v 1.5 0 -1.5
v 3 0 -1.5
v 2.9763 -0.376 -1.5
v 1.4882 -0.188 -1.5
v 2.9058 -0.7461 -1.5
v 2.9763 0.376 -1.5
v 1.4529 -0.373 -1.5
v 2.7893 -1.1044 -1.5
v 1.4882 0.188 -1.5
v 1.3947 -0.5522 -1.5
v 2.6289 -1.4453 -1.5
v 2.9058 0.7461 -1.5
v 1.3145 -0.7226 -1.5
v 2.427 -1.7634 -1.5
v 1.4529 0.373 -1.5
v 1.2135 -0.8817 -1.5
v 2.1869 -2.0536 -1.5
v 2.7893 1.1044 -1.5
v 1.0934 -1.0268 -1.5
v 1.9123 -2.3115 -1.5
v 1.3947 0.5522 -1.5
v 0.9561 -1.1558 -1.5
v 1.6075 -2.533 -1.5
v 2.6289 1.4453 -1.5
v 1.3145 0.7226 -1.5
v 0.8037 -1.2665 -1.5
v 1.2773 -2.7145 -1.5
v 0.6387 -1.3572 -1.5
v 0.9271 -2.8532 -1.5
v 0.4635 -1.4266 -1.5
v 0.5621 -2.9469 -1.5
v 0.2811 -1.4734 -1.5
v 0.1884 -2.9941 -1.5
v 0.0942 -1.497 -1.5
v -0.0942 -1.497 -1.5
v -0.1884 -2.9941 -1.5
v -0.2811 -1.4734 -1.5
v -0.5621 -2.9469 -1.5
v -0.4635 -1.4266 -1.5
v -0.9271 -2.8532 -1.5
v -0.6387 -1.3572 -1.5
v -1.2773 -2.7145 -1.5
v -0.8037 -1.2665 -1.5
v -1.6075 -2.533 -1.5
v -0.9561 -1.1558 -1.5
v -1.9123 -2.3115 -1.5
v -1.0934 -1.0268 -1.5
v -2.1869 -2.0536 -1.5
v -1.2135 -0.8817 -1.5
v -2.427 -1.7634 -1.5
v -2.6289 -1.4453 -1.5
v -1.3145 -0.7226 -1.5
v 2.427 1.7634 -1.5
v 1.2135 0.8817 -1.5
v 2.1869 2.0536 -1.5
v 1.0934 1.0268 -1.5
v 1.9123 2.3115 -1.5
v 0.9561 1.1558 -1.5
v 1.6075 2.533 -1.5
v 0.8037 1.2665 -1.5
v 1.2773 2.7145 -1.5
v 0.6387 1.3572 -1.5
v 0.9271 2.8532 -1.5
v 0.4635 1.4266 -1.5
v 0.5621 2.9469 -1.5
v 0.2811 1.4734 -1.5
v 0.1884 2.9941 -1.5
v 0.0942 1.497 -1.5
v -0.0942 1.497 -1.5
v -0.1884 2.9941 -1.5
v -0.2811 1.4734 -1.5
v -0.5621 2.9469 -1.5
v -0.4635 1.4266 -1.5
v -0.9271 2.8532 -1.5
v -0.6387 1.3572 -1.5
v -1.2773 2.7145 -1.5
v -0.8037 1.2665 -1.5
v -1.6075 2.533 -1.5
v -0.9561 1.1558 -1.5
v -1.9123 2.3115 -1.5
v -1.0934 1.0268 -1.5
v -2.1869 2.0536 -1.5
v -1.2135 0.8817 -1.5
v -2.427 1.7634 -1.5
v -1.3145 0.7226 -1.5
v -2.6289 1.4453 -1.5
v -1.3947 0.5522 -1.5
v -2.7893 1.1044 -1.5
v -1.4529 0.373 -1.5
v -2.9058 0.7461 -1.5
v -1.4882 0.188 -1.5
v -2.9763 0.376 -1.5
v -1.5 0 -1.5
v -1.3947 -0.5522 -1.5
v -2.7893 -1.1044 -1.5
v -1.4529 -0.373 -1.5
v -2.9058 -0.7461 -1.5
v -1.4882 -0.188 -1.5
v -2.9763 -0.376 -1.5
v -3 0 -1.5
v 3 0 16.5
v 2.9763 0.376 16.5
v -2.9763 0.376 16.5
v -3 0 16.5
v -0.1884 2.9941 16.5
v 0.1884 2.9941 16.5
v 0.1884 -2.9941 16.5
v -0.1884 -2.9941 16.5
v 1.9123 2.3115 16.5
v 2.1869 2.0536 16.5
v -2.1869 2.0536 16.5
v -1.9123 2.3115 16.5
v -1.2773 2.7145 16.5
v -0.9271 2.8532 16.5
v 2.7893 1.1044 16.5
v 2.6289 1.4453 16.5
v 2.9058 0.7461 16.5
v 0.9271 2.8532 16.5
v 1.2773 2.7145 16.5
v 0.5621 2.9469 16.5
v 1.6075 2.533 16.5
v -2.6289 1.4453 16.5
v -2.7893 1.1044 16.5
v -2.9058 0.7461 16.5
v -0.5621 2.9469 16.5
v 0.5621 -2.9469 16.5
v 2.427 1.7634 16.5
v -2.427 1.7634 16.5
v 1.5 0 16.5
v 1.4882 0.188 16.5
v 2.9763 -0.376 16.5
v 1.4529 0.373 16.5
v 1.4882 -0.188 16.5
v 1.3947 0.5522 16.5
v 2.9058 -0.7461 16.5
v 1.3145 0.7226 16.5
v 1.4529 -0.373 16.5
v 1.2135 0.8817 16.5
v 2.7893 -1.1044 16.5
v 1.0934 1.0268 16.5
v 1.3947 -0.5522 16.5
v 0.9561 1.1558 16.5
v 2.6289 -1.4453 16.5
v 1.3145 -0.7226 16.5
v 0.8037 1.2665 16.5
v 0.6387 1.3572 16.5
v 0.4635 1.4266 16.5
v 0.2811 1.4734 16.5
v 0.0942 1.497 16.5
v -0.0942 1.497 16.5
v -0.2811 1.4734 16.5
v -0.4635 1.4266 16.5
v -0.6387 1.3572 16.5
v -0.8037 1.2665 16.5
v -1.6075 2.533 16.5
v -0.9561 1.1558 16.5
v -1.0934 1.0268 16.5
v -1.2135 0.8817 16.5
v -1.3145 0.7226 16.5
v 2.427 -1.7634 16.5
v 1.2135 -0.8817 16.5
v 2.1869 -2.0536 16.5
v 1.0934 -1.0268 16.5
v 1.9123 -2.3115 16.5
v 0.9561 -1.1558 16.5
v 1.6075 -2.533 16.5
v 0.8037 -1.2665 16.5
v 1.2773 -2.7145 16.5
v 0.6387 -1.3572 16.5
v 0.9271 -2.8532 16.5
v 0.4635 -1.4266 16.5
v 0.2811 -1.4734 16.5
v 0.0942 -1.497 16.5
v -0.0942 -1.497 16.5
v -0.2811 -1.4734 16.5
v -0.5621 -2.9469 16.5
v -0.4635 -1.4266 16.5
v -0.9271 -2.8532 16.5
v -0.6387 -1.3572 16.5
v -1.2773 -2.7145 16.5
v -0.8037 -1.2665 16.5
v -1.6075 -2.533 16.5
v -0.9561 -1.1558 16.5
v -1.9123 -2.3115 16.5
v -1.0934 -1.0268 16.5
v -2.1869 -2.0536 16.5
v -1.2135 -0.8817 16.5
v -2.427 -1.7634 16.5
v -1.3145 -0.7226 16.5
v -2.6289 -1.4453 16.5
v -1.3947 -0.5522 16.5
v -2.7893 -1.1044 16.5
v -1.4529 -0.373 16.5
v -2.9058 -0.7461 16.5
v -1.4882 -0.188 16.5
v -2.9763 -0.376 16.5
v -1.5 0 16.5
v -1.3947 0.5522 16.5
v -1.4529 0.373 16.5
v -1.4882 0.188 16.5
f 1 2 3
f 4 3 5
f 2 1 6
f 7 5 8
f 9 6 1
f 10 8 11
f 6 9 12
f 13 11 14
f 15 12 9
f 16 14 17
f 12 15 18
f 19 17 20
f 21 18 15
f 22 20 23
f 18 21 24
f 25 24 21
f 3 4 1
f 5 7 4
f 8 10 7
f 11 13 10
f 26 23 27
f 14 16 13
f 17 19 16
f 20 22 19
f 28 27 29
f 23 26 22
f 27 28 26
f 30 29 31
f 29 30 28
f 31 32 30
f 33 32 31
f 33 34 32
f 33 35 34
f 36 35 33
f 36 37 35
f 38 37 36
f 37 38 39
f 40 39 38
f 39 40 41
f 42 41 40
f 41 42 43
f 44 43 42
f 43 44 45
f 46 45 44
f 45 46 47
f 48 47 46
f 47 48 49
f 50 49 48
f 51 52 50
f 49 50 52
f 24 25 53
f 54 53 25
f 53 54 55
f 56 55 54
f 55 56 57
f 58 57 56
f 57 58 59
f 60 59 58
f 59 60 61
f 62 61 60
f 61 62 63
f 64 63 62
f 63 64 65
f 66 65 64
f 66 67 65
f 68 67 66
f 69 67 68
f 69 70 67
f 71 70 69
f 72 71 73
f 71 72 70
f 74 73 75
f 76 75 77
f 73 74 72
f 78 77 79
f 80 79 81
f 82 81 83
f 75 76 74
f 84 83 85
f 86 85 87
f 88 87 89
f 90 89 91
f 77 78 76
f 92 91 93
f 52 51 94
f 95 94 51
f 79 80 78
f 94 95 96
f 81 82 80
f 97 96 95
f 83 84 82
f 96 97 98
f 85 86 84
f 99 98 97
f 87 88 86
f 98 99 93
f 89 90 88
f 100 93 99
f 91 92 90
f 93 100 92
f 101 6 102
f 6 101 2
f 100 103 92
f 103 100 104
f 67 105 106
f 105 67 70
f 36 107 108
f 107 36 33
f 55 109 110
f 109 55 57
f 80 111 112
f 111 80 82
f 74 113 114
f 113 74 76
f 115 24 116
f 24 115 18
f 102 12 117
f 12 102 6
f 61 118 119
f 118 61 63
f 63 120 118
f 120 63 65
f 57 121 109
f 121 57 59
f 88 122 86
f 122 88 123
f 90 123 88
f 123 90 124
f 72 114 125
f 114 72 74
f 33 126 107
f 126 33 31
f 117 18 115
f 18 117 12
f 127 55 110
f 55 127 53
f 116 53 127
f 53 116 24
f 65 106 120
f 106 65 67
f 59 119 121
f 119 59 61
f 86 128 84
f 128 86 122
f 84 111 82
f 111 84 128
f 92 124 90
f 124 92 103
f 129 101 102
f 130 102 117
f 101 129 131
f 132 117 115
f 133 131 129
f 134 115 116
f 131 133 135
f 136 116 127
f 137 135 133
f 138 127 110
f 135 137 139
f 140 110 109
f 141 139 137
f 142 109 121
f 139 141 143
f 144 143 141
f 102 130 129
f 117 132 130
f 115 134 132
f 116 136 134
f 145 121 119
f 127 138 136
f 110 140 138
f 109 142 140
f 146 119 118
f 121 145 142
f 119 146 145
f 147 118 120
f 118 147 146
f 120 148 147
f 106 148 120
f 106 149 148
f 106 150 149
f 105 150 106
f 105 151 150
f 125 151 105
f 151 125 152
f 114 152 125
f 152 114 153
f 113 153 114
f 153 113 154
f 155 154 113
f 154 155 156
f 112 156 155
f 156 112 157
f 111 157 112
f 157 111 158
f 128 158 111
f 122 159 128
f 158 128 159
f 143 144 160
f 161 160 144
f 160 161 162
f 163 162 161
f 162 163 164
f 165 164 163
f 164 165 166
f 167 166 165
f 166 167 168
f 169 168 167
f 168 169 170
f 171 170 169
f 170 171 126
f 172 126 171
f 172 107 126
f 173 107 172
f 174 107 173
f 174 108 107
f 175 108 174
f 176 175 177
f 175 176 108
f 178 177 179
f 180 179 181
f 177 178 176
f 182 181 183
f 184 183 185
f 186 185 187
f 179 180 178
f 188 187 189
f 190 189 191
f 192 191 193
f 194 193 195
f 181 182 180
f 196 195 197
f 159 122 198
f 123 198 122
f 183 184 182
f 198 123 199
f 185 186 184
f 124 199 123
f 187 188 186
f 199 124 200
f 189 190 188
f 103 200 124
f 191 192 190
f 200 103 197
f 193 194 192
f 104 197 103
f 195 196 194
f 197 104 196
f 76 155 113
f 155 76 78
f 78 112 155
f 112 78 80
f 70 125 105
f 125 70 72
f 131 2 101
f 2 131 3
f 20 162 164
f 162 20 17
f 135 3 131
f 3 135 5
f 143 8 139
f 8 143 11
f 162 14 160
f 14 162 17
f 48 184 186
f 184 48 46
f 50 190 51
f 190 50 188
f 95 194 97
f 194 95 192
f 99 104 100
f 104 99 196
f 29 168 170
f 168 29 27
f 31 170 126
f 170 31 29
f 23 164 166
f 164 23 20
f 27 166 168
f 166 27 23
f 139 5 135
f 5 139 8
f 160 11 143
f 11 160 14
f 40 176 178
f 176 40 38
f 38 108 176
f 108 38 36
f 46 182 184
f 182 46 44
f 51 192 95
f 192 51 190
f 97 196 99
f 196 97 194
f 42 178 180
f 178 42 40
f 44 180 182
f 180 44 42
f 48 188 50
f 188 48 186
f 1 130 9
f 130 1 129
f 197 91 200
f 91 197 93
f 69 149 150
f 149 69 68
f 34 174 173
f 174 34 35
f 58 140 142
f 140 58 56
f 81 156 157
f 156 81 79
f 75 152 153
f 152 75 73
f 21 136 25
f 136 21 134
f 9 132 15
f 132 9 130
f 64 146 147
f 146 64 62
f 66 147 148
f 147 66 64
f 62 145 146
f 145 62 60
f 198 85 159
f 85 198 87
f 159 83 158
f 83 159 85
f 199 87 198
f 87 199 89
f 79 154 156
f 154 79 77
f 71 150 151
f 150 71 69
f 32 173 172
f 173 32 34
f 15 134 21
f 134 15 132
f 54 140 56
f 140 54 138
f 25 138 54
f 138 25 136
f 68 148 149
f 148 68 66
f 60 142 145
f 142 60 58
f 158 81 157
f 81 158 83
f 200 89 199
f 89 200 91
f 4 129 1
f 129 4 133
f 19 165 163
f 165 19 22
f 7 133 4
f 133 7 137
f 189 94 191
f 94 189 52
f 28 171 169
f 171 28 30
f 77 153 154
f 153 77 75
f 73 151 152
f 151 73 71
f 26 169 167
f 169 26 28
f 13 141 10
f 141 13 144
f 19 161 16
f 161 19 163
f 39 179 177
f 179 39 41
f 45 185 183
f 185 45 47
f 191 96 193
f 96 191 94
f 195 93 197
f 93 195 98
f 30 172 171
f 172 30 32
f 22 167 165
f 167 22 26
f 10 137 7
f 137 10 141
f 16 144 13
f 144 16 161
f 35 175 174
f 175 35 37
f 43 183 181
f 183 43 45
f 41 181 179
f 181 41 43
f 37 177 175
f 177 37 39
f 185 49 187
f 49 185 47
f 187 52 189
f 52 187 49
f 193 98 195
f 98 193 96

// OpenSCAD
$fn = 50;


difference() {
	union() {
		translate(v = [0, 0, -1.5000000000]) {
			cylinder(h = 3, r = 1.0000000000);
		}
		translate(v = [0, 0, -1.5000000000]) {
			cylinder(h = 18, r = 3.0000000000);
		}
	}
	union() {
		translate(v = [0, 0, -100.0000000000]) {
			cylinder(h = 200, r = 1.5000000000);
		}
	}
}
